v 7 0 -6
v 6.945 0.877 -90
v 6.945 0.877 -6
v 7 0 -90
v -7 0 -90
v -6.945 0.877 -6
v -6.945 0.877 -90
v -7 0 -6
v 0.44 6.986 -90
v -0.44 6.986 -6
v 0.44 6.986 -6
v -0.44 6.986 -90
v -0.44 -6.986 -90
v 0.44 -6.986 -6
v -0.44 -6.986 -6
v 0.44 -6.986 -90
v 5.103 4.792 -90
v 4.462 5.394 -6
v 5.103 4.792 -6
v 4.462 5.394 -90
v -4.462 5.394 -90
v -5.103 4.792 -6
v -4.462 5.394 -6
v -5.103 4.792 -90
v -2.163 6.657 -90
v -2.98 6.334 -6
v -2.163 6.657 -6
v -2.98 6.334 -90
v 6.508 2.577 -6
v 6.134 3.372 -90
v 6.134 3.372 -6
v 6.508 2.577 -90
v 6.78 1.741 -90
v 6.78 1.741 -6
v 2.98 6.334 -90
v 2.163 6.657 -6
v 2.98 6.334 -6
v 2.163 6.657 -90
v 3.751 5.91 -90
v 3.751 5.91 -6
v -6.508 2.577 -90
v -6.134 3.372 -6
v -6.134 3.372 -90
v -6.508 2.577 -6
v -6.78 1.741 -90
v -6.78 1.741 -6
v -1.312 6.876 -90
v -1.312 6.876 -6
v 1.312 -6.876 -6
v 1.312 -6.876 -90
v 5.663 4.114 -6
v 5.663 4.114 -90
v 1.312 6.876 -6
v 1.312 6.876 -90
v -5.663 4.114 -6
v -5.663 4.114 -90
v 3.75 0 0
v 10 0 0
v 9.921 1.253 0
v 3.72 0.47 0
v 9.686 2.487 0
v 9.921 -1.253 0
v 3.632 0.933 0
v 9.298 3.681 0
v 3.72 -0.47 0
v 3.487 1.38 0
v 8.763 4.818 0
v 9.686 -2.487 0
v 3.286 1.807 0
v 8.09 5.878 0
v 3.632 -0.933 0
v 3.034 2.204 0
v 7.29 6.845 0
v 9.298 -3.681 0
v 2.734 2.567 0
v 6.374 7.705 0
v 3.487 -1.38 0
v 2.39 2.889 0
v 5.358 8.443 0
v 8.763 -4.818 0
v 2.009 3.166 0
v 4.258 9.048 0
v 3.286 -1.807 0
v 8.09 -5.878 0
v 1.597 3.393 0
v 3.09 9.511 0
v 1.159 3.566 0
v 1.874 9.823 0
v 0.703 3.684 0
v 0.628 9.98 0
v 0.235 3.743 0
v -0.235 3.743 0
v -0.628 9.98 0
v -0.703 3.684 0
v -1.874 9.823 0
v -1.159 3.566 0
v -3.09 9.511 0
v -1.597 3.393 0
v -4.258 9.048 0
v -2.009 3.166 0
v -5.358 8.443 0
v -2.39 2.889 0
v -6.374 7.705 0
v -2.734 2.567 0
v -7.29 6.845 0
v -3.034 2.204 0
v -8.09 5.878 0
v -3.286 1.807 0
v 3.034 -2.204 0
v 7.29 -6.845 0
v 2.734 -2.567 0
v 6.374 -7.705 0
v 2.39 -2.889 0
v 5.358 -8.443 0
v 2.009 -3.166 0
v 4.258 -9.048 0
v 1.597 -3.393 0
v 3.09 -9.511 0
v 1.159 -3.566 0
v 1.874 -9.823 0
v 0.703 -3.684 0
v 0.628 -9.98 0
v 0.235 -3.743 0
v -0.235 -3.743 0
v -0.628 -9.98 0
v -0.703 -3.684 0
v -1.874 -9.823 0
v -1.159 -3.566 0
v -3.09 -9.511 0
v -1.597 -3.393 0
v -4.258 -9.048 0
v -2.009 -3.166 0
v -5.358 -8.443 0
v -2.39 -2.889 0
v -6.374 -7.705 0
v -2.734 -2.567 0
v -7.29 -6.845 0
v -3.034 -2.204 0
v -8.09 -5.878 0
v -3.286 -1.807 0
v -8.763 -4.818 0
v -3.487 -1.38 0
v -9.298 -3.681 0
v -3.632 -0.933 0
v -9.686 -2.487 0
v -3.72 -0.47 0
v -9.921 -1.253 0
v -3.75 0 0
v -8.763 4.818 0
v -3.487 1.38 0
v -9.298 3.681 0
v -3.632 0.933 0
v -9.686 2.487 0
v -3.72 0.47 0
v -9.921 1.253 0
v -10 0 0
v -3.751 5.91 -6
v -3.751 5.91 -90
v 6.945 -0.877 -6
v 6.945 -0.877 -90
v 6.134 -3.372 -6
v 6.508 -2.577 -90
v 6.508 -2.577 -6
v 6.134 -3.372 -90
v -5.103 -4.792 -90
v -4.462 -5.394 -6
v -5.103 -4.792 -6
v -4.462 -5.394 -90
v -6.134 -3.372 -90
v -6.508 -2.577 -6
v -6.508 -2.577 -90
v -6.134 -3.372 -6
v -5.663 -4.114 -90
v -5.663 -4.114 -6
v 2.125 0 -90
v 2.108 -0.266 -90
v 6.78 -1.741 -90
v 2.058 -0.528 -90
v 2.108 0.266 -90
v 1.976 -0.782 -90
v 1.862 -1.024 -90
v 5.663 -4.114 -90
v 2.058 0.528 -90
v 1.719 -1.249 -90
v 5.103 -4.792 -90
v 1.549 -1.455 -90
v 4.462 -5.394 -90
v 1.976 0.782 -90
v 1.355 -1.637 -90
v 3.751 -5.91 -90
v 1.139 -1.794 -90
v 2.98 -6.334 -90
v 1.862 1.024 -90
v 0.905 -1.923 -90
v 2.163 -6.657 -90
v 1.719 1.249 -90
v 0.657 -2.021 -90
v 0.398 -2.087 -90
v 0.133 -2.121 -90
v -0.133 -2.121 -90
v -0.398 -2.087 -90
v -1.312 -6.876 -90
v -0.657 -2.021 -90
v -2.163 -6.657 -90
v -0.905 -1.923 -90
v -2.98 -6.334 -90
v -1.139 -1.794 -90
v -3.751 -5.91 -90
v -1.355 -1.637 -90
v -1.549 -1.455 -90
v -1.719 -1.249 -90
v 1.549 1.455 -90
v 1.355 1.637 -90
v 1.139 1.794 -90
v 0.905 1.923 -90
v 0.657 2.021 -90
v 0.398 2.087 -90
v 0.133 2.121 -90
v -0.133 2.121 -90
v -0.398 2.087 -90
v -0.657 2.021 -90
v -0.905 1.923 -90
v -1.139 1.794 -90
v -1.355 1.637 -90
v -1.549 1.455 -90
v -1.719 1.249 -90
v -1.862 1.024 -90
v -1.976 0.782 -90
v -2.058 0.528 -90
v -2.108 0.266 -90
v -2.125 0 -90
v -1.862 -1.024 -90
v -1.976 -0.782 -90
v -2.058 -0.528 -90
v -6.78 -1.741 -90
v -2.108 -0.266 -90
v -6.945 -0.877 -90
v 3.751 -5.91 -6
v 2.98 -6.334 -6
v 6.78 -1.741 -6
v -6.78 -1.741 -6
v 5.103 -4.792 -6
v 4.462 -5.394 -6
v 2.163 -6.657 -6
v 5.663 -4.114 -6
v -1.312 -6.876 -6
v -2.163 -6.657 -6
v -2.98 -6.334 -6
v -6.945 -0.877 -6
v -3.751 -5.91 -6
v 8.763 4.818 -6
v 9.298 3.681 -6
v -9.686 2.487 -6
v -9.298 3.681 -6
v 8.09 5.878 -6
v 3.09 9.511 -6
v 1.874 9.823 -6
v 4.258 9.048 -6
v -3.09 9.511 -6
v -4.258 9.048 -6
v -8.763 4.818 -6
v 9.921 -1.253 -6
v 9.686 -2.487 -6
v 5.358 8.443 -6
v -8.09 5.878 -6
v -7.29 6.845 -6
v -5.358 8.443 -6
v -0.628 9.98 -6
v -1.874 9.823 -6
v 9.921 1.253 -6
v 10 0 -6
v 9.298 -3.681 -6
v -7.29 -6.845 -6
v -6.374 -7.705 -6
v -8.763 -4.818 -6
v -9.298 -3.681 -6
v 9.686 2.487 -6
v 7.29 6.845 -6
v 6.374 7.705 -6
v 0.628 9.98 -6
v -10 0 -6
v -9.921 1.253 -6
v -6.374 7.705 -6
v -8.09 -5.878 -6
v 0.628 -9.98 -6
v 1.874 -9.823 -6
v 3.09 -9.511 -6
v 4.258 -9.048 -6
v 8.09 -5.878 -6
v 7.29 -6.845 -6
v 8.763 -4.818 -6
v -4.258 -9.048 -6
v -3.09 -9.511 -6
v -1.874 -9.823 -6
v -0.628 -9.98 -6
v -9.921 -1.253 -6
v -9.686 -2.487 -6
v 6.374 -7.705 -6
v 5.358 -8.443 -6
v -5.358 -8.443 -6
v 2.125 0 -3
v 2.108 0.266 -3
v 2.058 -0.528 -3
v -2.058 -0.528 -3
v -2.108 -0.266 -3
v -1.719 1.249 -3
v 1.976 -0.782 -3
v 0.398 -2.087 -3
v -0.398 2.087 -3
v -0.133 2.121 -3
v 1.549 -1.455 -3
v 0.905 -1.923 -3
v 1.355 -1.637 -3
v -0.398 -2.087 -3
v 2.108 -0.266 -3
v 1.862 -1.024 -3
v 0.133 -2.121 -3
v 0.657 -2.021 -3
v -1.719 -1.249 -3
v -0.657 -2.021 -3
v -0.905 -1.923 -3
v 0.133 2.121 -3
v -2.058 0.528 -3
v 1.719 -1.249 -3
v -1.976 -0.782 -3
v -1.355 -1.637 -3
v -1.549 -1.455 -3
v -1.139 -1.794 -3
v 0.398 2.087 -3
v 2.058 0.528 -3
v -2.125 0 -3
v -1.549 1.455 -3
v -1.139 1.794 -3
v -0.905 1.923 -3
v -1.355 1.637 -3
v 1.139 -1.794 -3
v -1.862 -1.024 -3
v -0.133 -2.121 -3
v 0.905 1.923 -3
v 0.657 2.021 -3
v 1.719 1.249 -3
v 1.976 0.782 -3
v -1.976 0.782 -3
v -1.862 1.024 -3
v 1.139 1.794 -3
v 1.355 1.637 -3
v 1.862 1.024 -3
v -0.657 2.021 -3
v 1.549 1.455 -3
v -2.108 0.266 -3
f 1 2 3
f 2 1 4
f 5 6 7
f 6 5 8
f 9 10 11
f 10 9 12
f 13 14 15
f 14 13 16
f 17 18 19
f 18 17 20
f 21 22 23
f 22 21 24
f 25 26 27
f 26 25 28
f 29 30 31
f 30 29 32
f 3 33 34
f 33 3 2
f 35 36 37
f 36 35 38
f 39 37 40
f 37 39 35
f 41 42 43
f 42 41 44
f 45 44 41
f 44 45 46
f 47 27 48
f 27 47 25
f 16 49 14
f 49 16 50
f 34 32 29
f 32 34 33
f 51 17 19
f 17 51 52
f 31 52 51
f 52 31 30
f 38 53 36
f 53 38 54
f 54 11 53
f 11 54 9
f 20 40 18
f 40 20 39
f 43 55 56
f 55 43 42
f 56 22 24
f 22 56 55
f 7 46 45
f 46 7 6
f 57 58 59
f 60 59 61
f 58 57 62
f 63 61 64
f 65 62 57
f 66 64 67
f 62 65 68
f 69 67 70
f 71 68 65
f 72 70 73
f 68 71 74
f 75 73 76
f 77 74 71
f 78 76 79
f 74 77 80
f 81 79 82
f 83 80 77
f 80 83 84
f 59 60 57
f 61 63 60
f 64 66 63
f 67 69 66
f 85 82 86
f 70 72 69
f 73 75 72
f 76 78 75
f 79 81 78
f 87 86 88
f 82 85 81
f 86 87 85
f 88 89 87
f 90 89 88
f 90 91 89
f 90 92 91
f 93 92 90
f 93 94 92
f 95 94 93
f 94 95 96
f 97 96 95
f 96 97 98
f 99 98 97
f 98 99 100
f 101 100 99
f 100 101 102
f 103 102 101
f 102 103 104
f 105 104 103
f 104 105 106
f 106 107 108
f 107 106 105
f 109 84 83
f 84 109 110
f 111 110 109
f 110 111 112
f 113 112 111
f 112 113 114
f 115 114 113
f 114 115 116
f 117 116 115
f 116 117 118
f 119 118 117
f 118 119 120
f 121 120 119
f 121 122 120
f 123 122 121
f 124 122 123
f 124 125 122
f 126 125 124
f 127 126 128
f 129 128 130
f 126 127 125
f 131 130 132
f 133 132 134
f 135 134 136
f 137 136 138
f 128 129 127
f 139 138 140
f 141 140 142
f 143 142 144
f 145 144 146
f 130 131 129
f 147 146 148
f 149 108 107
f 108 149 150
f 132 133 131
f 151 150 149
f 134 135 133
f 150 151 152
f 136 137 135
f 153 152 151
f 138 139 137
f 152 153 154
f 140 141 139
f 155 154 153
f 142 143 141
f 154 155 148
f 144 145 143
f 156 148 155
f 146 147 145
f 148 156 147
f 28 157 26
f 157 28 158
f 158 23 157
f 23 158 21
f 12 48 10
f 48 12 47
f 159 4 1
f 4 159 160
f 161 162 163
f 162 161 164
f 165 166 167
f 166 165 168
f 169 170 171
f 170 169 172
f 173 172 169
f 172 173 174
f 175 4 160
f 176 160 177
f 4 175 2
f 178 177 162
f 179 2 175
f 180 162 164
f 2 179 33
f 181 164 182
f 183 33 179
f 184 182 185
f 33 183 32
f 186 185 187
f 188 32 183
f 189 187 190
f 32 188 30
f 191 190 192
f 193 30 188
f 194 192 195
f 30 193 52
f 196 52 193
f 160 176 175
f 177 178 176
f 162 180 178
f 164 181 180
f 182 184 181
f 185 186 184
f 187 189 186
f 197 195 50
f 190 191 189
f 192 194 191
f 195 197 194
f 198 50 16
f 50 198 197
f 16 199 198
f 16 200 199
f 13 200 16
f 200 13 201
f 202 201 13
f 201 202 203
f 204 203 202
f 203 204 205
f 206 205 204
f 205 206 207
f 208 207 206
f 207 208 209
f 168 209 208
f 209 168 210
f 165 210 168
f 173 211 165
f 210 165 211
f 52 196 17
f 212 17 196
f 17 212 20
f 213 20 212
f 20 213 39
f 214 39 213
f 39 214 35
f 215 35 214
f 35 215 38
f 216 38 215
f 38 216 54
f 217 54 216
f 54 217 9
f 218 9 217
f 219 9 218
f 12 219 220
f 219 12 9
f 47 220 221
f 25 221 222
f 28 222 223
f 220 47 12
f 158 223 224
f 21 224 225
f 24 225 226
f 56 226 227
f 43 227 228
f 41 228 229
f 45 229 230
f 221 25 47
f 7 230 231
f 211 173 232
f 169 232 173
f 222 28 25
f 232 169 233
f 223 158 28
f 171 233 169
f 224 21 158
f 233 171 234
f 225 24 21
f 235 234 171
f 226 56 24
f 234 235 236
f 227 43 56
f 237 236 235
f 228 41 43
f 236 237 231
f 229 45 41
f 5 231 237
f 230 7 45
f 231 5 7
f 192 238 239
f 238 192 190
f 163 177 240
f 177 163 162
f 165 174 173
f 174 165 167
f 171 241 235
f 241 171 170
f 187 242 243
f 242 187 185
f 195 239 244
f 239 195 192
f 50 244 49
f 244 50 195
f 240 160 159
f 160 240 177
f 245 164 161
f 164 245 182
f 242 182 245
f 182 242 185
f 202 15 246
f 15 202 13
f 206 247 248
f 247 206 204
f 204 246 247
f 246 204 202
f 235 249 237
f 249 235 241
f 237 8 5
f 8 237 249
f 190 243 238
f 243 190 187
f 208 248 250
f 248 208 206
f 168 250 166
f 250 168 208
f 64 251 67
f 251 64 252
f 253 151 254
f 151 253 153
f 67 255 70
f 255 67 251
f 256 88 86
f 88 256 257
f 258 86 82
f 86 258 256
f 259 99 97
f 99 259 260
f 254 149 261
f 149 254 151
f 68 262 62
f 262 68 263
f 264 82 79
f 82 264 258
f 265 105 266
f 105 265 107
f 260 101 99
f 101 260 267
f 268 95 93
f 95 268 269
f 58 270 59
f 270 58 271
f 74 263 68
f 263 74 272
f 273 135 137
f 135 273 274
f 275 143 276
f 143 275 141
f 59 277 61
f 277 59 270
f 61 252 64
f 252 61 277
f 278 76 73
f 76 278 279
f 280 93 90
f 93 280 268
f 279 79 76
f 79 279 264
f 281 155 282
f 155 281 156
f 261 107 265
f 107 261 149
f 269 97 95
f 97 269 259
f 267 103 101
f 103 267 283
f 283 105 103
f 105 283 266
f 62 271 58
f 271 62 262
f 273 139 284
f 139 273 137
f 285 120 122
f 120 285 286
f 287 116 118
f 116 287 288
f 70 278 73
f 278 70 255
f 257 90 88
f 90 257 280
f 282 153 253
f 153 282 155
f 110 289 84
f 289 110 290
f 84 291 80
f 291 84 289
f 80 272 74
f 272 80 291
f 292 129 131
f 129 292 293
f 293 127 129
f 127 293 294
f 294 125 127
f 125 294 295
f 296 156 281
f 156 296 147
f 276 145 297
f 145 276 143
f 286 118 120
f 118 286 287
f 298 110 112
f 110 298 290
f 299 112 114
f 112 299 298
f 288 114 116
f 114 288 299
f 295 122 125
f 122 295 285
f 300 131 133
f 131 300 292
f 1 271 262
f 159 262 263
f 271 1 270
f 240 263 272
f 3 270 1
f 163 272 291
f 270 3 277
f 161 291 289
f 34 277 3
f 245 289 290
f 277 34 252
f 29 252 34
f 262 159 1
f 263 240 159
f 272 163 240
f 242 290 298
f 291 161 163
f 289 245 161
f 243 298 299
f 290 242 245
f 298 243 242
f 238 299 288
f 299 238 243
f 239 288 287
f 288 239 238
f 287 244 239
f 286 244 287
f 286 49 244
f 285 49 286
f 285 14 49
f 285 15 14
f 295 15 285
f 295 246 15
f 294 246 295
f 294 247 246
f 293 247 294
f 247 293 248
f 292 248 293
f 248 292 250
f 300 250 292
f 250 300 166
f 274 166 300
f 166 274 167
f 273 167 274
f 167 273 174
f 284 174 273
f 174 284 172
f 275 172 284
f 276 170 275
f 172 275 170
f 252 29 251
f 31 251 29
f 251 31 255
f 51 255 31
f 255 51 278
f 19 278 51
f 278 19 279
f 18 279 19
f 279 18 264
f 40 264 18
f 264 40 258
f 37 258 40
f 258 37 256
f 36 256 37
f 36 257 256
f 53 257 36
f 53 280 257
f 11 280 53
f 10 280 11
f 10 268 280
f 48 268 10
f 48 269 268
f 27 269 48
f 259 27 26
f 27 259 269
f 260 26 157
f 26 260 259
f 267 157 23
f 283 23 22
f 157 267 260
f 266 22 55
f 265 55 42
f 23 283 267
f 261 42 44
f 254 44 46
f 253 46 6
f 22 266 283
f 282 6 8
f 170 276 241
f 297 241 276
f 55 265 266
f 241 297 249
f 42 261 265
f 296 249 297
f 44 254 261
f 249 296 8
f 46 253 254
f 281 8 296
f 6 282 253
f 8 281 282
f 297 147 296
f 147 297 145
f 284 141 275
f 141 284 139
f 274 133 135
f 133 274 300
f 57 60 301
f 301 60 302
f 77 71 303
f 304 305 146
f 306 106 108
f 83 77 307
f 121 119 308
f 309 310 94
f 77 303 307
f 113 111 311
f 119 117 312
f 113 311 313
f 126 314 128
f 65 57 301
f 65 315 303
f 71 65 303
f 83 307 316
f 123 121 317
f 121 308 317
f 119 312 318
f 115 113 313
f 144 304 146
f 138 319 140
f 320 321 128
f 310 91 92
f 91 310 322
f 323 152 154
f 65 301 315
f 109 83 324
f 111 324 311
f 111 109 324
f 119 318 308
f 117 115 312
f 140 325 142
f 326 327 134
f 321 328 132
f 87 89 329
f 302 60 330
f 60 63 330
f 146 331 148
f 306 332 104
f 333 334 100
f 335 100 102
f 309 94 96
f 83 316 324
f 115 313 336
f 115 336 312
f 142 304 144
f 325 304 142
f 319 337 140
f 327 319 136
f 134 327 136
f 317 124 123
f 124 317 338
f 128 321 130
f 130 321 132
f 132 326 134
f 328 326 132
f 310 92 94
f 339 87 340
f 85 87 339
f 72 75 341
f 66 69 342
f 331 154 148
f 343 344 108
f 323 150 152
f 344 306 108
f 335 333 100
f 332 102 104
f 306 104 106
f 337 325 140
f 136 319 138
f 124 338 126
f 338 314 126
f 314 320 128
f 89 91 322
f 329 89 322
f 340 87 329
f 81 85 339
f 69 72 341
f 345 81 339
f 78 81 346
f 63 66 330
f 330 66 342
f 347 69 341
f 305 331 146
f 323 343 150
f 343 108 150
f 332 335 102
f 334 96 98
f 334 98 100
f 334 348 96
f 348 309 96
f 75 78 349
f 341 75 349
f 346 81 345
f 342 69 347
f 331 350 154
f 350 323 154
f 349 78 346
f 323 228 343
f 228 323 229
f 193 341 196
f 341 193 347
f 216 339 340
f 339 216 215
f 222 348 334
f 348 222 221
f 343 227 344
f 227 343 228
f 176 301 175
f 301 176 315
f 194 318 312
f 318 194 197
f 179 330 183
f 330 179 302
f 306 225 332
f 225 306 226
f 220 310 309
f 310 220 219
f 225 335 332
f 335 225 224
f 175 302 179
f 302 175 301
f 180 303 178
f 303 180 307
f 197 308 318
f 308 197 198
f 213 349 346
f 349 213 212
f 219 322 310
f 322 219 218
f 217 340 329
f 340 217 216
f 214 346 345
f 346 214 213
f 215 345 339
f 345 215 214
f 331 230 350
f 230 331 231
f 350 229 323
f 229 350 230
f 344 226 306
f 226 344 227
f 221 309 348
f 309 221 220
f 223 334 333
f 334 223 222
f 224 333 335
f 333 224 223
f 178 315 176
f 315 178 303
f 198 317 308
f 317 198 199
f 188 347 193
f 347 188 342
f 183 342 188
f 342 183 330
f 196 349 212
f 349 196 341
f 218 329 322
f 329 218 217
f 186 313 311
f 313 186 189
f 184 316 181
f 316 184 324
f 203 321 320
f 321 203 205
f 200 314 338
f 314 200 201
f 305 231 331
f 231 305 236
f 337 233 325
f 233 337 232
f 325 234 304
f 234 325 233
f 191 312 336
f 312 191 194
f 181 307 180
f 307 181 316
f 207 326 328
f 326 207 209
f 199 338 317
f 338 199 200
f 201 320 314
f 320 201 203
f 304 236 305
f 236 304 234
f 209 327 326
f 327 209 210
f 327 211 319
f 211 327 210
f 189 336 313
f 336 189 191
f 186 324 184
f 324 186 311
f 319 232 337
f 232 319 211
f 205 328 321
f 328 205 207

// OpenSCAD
$fn = 50;


difference() {
	union() {
		translate(v = [0, 0, -90.0000000000]) {
			cylinder(h = 90, r = 7.0000000000);
		}
		translate(v = [0, 0, -6.0000000000]) {
			cylinder(h = 6, r = 10.0000000000);
		}
	}
	union() {
		translate(v = [0, 0, 0]) {
			rotate(a = [0, 0, 0]) {
				difference() {
					union() {
						#translate(v = [0, 0, -90.0000000000]) {
							cylinder(h = 90, r = 2.0000000000);
						}
						#translate(v = [0, 0, -3]) {
							cylinder(h = 3, r = 7.0000000000, r1 = 2.1250000000, r2 = 3.7500000000);
						}
						#translate(v = [0, 0, -90.0000000000]) {
							cylinder(h = 90, r = 2.1250000000);
						}
						#translate(v = [0, 0, -90.0000000000]) {
							cylinder(h = 90, r = 2.0000000000);
						}
					}
					union();
				}
			}
		}
	}
}
